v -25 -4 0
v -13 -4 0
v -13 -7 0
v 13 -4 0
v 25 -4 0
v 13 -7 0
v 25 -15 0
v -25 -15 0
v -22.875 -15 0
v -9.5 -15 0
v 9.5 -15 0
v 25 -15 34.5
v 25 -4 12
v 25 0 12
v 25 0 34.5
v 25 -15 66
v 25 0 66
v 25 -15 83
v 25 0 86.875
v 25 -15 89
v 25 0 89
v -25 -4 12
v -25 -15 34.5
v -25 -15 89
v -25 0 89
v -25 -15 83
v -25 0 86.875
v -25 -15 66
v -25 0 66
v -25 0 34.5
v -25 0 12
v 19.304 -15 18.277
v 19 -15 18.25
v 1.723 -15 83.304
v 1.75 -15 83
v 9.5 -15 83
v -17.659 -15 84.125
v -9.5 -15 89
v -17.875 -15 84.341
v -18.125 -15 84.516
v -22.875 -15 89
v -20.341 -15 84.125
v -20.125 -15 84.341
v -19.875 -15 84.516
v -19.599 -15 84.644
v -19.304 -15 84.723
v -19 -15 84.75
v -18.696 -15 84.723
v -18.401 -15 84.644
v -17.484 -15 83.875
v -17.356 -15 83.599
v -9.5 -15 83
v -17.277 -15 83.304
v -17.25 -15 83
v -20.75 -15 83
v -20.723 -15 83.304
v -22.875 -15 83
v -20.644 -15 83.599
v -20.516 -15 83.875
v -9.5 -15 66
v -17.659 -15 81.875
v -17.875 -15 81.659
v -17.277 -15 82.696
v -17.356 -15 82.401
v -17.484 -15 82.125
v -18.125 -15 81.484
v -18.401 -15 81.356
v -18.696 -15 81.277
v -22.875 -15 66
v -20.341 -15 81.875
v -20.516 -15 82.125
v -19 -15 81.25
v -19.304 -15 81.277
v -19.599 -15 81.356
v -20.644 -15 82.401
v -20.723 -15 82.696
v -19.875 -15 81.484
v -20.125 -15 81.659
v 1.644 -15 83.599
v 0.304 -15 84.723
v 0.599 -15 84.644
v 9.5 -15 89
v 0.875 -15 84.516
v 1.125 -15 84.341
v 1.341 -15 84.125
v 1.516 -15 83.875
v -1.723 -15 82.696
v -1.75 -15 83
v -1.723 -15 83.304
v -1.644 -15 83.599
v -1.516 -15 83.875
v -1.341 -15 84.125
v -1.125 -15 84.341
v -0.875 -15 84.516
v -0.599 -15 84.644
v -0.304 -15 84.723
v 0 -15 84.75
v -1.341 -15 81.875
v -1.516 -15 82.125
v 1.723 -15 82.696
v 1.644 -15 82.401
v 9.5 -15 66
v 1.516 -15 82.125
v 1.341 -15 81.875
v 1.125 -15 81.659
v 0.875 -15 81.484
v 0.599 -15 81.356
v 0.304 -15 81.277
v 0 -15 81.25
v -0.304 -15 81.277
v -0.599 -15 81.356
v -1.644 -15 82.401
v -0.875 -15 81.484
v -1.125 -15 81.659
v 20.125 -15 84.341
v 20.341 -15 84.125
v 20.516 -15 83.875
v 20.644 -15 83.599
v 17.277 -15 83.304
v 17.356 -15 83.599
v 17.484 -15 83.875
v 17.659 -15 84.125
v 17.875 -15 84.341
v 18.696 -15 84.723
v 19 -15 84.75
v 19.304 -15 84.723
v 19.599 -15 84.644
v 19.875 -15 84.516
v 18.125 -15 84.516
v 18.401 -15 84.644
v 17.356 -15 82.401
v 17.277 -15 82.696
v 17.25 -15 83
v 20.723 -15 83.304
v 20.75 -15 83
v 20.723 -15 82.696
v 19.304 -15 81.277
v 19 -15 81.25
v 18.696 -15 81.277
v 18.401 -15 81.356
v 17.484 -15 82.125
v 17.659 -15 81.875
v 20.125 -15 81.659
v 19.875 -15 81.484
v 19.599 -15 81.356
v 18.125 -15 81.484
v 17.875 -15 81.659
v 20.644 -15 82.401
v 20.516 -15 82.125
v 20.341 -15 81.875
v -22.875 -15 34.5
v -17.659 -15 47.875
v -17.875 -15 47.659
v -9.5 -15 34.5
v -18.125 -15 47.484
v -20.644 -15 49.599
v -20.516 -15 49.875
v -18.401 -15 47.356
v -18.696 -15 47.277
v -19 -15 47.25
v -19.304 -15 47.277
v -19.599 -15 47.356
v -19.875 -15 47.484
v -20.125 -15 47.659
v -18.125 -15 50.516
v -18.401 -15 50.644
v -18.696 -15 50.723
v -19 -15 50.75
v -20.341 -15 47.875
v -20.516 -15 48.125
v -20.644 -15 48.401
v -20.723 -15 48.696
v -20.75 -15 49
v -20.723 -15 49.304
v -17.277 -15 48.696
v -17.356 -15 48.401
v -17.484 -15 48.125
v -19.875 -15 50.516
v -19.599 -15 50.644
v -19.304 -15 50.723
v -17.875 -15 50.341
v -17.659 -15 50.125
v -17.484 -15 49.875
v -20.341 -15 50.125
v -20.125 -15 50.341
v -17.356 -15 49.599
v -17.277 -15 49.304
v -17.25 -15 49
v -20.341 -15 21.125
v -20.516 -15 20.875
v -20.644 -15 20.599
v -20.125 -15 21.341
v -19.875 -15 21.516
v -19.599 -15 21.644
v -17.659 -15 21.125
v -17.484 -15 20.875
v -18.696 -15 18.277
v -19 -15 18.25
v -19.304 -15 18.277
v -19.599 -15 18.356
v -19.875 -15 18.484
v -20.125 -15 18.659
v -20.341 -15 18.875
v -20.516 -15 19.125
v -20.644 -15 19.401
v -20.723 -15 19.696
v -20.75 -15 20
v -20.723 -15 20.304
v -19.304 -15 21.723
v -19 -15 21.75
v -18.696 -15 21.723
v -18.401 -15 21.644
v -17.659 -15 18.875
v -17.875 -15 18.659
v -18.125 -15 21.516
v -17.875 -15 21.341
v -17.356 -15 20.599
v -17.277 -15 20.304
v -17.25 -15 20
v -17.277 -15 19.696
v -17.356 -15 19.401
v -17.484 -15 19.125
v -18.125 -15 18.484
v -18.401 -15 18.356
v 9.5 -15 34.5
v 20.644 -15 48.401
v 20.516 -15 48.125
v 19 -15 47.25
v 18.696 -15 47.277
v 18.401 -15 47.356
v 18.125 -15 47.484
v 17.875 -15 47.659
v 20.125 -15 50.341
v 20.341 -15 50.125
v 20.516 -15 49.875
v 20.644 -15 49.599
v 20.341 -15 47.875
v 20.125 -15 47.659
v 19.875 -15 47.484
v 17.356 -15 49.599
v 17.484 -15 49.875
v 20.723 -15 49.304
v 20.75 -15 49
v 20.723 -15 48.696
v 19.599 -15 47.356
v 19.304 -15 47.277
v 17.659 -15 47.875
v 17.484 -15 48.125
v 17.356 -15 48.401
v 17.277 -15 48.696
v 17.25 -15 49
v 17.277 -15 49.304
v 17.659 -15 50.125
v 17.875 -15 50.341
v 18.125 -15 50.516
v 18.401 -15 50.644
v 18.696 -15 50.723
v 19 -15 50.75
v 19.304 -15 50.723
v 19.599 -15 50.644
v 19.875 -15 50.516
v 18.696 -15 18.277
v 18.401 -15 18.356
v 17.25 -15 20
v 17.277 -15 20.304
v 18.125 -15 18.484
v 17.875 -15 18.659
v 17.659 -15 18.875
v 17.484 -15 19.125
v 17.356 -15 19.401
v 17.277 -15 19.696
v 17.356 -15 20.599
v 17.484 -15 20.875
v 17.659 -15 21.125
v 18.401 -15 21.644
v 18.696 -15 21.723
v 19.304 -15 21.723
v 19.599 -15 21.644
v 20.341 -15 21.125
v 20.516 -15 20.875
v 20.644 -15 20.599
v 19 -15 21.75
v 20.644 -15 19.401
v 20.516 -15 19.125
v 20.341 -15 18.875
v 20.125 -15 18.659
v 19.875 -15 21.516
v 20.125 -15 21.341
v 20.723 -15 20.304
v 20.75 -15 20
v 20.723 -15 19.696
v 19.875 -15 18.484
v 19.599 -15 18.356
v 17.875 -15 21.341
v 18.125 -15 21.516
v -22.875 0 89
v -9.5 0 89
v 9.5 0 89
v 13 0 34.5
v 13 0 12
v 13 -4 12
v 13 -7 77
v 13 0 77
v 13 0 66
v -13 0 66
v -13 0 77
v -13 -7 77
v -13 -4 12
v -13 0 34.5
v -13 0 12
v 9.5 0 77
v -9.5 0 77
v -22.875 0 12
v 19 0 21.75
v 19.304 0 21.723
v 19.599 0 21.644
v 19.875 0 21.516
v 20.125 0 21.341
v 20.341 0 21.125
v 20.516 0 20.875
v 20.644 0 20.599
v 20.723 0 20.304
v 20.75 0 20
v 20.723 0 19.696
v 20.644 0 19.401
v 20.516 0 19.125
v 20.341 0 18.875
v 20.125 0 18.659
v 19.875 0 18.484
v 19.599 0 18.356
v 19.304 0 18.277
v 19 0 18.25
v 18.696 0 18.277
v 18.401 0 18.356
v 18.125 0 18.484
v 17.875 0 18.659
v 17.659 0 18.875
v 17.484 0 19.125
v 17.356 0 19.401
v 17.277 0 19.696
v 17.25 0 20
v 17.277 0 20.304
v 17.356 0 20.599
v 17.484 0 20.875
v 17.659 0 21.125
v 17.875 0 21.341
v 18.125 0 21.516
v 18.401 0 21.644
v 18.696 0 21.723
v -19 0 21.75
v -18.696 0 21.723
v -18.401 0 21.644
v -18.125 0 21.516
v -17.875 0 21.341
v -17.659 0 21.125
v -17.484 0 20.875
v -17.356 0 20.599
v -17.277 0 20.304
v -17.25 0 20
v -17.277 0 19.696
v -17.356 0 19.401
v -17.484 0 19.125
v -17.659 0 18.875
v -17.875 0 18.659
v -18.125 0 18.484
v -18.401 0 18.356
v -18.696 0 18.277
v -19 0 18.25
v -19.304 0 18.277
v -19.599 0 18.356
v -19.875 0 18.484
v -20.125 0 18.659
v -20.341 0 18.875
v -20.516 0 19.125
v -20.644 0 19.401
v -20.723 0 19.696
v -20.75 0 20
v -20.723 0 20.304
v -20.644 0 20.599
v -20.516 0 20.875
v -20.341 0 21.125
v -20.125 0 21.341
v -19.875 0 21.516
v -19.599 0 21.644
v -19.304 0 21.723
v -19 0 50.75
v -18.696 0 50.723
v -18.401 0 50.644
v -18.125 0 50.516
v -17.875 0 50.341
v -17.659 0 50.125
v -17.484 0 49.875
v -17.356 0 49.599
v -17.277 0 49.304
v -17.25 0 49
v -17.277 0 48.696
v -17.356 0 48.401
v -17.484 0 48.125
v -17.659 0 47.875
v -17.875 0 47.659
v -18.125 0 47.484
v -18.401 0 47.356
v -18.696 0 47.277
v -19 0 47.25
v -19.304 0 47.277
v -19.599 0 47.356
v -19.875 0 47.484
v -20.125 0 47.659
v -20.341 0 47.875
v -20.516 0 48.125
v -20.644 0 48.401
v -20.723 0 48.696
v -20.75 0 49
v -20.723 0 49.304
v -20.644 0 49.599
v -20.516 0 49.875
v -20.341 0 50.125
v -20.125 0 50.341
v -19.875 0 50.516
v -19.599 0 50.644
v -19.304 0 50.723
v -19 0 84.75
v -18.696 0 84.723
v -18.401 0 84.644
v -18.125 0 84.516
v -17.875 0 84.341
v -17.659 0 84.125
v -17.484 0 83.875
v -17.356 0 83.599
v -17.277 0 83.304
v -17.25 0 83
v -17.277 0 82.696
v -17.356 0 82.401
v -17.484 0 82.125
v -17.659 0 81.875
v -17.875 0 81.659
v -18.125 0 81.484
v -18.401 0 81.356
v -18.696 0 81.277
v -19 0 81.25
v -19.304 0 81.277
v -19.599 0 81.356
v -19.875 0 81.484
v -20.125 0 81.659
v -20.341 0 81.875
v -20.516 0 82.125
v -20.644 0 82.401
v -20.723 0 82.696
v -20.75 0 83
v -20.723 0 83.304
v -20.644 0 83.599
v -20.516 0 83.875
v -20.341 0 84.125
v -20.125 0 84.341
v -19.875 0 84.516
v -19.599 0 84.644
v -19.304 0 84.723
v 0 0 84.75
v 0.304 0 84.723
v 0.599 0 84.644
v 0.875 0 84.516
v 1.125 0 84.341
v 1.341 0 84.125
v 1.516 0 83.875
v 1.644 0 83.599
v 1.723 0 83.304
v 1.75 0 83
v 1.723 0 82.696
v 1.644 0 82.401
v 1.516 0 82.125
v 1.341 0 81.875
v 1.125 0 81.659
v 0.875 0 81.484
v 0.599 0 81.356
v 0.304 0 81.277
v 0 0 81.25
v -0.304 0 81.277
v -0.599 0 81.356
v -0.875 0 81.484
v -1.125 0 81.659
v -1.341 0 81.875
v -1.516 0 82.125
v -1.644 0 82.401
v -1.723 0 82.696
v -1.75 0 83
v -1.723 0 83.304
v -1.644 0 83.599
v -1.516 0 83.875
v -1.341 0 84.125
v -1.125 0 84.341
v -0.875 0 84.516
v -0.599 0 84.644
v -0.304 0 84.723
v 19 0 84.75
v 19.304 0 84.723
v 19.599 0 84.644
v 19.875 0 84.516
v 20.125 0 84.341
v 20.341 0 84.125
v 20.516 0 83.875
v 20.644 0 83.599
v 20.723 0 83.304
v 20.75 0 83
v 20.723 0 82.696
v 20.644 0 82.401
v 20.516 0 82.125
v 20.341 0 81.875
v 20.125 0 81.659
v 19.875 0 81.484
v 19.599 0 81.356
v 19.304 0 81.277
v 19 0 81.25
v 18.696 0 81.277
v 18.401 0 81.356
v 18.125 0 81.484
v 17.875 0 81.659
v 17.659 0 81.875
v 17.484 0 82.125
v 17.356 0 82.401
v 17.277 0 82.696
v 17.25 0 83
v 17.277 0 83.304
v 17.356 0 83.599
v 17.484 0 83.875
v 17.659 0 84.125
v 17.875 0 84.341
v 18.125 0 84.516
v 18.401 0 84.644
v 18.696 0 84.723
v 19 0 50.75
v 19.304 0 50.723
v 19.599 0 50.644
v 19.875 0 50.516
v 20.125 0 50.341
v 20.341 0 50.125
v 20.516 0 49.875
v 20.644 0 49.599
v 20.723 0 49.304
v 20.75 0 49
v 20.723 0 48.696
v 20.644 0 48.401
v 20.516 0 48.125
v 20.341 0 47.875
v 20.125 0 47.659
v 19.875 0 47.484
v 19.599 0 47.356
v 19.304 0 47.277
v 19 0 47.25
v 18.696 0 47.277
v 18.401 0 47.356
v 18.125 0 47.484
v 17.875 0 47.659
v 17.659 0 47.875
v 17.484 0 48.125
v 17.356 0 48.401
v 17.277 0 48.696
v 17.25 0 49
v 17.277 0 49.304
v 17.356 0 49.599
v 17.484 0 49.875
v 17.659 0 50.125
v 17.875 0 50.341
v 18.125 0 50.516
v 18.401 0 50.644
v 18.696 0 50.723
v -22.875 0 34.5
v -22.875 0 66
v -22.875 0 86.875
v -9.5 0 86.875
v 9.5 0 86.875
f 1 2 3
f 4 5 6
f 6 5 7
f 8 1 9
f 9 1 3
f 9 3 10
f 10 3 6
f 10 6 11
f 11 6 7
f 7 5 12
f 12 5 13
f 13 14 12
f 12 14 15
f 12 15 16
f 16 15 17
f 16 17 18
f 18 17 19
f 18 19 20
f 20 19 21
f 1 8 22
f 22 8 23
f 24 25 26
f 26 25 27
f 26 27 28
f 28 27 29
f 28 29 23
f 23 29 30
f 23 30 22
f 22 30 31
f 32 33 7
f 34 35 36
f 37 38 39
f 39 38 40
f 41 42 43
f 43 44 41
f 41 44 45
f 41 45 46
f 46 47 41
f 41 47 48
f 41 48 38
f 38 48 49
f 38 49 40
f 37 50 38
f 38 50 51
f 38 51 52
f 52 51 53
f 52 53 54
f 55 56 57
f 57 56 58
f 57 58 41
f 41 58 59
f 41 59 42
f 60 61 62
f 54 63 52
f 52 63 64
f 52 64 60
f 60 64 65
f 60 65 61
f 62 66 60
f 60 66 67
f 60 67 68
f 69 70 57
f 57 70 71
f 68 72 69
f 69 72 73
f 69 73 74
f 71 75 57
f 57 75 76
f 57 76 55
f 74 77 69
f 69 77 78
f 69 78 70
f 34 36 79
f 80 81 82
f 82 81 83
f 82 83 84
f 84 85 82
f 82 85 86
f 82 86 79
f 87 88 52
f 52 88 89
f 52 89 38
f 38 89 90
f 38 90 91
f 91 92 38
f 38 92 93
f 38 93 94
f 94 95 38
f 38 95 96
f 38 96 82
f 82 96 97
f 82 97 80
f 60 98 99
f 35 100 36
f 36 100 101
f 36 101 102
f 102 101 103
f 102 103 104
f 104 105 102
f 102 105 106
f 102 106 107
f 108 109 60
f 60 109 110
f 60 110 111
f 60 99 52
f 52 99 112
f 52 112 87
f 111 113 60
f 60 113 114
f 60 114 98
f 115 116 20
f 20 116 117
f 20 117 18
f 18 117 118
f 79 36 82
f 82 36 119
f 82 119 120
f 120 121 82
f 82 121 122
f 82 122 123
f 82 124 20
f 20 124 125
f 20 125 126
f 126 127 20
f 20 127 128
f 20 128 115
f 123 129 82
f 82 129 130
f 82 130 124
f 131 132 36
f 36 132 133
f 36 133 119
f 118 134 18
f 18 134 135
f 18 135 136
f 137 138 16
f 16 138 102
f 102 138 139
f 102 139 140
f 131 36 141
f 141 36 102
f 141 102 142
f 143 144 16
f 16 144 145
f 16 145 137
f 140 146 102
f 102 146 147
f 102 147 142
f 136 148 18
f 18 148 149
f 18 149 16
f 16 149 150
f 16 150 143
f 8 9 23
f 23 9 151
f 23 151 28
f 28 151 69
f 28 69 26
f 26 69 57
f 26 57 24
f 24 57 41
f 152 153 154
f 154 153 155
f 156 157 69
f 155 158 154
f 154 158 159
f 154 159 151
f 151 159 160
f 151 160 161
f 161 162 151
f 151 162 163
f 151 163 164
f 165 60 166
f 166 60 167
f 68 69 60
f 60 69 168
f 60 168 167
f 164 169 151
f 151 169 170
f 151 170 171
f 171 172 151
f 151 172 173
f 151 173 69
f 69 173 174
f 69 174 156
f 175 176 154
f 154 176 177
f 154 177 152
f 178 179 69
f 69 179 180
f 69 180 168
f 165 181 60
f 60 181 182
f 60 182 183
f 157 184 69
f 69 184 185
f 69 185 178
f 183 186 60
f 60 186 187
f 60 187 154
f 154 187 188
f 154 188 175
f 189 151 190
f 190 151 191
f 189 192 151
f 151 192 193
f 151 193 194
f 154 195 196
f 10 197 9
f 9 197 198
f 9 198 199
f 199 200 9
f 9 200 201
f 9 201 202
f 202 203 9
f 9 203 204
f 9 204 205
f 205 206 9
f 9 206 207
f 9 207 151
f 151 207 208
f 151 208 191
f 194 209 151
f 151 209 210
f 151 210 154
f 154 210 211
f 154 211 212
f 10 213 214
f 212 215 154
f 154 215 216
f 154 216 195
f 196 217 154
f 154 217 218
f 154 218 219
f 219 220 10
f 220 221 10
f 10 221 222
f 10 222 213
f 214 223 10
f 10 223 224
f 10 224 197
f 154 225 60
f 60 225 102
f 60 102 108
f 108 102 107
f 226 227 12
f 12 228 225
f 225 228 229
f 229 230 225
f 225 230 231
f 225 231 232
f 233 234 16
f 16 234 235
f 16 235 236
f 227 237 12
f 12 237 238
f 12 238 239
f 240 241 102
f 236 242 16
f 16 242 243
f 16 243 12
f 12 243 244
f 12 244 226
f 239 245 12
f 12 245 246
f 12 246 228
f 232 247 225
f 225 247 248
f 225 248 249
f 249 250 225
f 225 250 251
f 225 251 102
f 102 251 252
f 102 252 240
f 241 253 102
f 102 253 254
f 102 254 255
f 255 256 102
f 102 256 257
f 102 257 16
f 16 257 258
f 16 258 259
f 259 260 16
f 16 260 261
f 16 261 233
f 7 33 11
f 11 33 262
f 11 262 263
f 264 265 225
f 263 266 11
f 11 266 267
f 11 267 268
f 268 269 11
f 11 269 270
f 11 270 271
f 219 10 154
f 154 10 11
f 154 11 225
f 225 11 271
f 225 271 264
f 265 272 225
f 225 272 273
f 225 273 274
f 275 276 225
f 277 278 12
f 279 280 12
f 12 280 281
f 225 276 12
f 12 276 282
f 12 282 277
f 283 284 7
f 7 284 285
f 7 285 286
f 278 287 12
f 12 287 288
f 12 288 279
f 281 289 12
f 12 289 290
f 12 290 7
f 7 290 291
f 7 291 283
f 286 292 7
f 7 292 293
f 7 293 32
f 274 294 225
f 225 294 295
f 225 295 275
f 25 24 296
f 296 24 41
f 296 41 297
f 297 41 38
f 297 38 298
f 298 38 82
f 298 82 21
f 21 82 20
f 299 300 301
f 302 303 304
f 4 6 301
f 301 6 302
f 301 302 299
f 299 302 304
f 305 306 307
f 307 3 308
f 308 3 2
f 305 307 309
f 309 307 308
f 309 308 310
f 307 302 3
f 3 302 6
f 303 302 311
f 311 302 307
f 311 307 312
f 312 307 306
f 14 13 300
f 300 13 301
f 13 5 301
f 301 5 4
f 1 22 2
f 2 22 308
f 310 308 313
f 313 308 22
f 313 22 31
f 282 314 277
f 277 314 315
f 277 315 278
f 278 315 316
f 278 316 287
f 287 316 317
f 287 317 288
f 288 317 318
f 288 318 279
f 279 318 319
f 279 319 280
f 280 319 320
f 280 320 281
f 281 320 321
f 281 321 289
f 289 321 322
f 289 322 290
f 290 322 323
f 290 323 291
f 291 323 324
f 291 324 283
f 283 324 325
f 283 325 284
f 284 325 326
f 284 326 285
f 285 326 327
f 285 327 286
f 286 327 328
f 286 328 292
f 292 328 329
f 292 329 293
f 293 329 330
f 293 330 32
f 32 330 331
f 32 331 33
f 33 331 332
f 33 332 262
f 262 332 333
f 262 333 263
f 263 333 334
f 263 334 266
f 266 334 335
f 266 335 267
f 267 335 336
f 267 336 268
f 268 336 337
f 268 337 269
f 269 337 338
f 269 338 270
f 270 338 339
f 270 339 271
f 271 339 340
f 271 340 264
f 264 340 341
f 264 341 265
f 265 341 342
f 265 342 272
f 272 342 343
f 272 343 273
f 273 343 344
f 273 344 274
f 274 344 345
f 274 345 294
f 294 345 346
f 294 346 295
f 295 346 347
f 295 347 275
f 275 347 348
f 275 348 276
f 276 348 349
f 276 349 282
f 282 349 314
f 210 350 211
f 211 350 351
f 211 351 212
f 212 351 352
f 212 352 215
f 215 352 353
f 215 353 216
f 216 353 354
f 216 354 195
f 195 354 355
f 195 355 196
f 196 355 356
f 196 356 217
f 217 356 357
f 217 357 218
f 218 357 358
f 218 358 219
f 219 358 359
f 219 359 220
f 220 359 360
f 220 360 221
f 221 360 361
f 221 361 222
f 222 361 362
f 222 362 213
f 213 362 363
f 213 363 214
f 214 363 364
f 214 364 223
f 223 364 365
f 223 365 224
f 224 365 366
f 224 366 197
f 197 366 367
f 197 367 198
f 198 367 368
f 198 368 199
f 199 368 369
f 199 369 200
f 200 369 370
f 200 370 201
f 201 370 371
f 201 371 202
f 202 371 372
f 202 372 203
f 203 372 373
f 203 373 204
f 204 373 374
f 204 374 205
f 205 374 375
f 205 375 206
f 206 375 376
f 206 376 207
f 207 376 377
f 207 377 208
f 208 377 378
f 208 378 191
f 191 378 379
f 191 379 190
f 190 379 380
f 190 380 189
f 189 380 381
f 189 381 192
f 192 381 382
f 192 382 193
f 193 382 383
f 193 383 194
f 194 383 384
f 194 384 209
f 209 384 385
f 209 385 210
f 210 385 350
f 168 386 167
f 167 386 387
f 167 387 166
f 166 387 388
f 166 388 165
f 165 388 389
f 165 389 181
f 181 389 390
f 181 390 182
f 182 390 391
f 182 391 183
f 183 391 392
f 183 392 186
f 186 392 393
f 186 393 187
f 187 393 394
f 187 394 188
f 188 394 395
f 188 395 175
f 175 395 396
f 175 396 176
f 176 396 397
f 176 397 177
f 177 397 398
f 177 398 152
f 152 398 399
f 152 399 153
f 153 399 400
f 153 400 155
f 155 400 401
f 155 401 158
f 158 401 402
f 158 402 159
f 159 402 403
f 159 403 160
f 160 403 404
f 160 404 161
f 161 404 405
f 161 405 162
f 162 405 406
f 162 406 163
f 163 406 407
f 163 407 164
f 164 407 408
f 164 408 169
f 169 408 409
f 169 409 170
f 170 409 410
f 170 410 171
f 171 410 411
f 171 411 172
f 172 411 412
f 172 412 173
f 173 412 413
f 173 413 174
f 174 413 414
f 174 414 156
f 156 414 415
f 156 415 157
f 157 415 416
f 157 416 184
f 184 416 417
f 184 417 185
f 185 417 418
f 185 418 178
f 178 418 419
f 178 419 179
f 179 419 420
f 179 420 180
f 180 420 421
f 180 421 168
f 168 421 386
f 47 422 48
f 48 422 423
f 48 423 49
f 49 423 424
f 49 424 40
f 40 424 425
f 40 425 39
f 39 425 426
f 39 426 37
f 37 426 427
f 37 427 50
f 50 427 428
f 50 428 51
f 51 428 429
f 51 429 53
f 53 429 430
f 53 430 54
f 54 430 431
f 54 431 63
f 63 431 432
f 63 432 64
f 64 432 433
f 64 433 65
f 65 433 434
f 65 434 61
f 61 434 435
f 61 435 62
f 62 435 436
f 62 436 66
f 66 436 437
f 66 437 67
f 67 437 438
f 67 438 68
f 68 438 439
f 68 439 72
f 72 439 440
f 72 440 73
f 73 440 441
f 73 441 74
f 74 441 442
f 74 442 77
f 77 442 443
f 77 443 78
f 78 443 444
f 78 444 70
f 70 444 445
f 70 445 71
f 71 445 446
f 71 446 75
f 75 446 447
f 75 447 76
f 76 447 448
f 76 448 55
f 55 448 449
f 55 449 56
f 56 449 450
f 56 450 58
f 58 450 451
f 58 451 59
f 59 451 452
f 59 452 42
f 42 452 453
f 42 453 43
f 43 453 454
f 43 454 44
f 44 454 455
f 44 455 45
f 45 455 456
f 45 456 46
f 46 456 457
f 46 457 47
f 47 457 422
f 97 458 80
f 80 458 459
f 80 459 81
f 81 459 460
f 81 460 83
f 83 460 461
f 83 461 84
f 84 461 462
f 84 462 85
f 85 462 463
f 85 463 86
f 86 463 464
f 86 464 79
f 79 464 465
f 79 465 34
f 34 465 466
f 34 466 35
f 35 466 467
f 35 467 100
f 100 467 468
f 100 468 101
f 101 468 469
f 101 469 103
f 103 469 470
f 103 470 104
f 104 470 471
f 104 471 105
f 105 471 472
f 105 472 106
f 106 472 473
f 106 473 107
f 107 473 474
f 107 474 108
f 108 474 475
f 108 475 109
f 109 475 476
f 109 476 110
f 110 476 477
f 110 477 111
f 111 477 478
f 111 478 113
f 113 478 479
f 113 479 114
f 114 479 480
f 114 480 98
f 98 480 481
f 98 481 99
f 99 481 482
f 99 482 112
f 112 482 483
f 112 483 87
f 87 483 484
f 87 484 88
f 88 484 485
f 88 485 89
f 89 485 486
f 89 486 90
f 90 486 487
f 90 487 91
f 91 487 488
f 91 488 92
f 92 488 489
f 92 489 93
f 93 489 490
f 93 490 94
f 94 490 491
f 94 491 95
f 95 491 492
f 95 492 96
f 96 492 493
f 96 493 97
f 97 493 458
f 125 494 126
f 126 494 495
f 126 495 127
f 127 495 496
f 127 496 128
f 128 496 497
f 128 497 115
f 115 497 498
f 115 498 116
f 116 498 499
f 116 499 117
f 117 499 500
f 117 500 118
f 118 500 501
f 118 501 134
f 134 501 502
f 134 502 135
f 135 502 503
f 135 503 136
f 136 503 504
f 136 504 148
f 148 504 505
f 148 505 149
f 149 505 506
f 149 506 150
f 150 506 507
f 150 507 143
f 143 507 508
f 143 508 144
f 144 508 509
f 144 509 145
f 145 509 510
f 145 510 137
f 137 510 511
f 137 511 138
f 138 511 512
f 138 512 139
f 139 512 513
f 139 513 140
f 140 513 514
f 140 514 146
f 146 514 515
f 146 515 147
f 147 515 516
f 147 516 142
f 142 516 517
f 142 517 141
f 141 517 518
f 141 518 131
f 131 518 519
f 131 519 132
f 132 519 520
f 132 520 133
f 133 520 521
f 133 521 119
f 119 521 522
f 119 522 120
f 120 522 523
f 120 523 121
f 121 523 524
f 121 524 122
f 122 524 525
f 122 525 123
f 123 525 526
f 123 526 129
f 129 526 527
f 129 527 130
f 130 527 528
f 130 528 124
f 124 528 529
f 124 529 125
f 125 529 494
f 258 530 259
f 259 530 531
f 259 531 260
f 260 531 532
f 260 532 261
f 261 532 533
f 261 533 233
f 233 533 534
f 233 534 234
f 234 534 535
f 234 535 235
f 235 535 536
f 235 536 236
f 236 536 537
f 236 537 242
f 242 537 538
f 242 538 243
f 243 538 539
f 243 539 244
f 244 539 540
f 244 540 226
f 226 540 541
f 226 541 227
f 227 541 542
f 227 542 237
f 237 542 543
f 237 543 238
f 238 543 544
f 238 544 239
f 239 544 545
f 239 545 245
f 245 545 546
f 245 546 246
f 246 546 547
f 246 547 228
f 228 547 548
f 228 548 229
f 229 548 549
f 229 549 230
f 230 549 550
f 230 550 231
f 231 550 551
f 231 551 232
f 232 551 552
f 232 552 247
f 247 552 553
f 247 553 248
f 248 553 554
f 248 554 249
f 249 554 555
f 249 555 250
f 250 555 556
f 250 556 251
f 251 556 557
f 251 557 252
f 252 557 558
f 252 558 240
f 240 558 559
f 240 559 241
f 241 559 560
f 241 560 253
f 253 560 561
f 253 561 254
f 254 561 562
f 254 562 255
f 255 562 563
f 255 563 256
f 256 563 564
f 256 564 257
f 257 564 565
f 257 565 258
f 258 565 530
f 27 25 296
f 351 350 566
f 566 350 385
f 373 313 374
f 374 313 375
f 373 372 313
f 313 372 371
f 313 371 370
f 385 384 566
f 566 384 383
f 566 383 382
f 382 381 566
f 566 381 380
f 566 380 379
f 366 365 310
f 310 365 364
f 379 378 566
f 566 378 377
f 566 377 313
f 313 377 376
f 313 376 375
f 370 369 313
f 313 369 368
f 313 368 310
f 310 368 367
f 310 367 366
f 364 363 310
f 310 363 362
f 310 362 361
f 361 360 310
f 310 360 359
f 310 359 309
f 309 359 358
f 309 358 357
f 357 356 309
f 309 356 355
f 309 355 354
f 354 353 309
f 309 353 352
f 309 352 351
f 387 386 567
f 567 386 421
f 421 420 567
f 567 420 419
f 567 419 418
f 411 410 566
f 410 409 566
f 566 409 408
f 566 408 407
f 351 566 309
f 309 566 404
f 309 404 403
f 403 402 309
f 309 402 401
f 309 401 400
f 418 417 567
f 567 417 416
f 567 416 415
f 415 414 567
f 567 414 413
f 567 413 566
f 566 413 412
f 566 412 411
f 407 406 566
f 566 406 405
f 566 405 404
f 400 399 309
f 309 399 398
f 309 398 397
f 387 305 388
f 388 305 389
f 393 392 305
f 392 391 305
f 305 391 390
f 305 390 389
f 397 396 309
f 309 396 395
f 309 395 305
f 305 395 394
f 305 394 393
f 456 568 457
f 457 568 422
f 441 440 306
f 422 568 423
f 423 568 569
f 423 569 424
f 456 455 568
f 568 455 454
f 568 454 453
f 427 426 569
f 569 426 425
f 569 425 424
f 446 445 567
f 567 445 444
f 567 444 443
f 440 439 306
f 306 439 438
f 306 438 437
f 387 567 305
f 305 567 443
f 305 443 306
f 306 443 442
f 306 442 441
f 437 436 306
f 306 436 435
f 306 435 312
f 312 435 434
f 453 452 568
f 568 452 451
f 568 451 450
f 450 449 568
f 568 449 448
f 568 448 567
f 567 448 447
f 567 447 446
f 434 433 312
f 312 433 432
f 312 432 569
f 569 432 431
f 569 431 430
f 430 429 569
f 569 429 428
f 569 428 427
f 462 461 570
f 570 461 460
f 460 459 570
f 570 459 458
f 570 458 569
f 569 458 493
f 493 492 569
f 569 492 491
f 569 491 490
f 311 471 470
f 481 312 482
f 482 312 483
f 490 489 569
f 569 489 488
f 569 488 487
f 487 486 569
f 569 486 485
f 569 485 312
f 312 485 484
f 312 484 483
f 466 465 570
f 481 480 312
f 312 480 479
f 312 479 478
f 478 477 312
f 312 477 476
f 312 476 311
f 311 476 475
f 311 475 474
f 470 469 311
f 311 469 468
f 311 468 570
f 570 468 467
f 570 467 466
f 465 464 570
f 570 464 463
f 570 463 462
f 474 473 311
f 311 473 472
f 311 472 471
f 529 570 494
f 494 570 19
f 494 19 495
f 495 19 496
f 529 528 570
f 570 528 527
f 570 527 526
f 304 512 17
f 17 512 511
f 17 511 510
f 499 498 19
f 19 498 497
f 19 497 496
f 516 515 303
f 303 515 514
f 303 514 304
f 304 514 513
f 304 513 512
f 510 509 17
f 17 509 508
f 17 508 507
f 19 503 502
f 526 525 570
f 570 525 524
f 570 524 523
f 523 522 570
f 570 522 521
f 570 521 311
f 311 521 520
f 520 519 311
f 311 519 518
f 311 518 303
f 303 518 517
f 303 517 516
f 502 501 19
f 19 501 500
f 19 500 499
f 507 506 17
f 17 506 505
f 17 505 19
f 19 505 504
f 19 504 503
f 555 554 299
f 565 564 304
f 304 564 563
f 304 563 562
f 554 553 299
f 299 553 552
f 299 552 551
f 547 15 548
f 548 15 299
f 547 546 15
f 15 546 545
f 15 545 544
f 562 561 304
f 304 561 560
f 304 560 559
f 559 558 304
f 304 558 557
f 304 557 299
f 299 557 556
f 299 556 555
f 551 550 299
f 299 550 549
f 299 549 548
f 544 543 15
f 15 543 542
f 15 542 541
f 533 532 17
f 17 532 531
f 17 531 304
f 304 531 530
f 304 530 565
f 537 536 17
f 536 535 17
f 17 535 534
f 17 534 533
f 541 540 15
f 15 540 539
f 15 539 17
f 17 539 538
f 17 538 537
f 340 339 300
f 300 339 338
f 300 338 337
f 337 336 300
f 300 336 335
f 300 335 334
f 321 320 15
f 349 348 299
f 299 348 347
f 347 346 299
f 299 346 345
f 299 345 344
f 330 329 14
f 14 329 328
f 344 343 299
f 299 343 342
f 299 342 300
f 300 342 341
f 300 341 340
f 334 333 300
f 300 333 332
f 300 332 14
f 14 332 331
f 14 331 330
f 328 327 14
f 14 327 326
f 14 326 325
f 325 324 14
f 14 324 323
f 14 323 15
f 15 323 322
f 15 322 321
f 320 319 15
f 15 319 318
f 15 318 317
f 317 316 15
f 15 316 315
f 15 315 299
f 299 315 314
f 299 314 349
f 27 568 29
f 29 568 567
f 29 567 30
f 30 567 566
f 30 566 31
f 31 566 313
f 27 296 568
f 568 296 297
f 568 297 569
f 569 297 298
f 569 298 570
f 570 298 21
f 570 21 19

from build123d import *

# Parameters (mm, degrees)
SKETCH_1_W          = 50
SKETCH_1_H          = 30
EXTRUDE_1_DEPTH     = 89
SKETCH_2_W          = 26
SKETCH_2_H          = 14
CUT_EXTRUDE_1_DEPTH = 77
SKETCH_5_W          = 12
SKETCH_5_H          = 8
CUT_EXTRUDE_4_DEPTH = 98.928545379
SKETCH_6_W          = 12
SKETCH_6_H          = 8
CUT_EXTRUDE_5_DEPTH = 98.928545379
SKETCH_7_R          = 1.75
CUT_EXTRUDE_6_DEPTH = 98.190534519


with BuildPart() as part:
    # ｽｹｯﾁ1 → ﾎﾞｽ - 押し出し1 (new body)
    with BuildSketch(Plane.XY):
        Rectangle(SKETCH_1_W, SKETCH_1_H)
    extrude(amount=EXTRUDE_1_DEPTH)

    # ｽｹｯﾁ2 → ｶｯﾄ - 押し出し1 (cut)
    with BuildSketch(Plane(origin=(0, 0, 0), x_dir=(-1, 0, 0), z_dir=(0, 0, -1))):
        Rectangle(SKETCH_2_W, SKETCH_2_H)
    extrude(amount=-CUT_EXTRUDE_1_DEPTH, mode=Mode.SUBTRACT)

    # ｽｹｯﾁ5 → ｶｯﾄ - 押し出し4 (cut, through all)
    with BuildSketch(Plane.ZY.offset(-13)):
        with Locations((6, 0)):
            Rectangle(SKETCH_5_W, SKETCH_5_H)
    extrude(amount=-CUT_EXTRUDE_4_DEPTH, mode=Mode.SUBTRACT)

    # ｽｹｯﾁ6 → ｶｯﾄ - 押し出し5 (cut, through all)
    with BuildSketch(Plane(origin=(-13, 0, 0), x_dir=(0, 0, -1), z_dir=(1, 0, 0))):
        with Locations((-6, 0)):
            Rectangle(SKETCH_6_W, SKETCH_6_H)
    extrude(amount=-CUT_EXTRUDE_5_DEPTH, mode=Mode.SUBTRACT)

    # ｽｹｯﾁ7 → ｶｯﾄ - 押し出し6 (cut, through all)
    with BuildSketch(Plane(origin=(0, 15, 0), x_dir=(1, 0, 0), z_dir=(0, 1, 0))):
        with Locations(Location((19, -20, 0), (0, 0, 270))):
            Circle(SKETCH_7_R)
        with Locations(Location((19, -49, 0), (0, 0, 270))):
            Circle(SKETCH_7_R)
        with Locations(Location((19, -83, 0), (0, 0, 270))):
            Circle(SKETCH_7_R)
        with Locations(Location((0, -83, 0), (0, 0, 270))):
            Circle(SKETCH_7_R)
        with Locations(Location((-19, -83, 0), (0, 0, 270))):
            Circle(SKETCH_7_R)
        with Locations(Location((-19, -49, 0), (0, 0, 270))):
            Circle(SKETCH_7_R)
        with Locations(Location((-19, -20, 0), (0, 0, 270))):
            Circle(SKETCH_7_R)
    extrude(amount=-CUT_EXTRUDE_6_DEPTH, mode=Mode.SUBTRACT)

    # Surface Cut 1
    split(bisect_by=Plane(origin=(0, 0, 0), x_dir=(-1, 0, 0), z_dir=(0, -1, 0)), keep=Keep.TOP)


solid = part.part
